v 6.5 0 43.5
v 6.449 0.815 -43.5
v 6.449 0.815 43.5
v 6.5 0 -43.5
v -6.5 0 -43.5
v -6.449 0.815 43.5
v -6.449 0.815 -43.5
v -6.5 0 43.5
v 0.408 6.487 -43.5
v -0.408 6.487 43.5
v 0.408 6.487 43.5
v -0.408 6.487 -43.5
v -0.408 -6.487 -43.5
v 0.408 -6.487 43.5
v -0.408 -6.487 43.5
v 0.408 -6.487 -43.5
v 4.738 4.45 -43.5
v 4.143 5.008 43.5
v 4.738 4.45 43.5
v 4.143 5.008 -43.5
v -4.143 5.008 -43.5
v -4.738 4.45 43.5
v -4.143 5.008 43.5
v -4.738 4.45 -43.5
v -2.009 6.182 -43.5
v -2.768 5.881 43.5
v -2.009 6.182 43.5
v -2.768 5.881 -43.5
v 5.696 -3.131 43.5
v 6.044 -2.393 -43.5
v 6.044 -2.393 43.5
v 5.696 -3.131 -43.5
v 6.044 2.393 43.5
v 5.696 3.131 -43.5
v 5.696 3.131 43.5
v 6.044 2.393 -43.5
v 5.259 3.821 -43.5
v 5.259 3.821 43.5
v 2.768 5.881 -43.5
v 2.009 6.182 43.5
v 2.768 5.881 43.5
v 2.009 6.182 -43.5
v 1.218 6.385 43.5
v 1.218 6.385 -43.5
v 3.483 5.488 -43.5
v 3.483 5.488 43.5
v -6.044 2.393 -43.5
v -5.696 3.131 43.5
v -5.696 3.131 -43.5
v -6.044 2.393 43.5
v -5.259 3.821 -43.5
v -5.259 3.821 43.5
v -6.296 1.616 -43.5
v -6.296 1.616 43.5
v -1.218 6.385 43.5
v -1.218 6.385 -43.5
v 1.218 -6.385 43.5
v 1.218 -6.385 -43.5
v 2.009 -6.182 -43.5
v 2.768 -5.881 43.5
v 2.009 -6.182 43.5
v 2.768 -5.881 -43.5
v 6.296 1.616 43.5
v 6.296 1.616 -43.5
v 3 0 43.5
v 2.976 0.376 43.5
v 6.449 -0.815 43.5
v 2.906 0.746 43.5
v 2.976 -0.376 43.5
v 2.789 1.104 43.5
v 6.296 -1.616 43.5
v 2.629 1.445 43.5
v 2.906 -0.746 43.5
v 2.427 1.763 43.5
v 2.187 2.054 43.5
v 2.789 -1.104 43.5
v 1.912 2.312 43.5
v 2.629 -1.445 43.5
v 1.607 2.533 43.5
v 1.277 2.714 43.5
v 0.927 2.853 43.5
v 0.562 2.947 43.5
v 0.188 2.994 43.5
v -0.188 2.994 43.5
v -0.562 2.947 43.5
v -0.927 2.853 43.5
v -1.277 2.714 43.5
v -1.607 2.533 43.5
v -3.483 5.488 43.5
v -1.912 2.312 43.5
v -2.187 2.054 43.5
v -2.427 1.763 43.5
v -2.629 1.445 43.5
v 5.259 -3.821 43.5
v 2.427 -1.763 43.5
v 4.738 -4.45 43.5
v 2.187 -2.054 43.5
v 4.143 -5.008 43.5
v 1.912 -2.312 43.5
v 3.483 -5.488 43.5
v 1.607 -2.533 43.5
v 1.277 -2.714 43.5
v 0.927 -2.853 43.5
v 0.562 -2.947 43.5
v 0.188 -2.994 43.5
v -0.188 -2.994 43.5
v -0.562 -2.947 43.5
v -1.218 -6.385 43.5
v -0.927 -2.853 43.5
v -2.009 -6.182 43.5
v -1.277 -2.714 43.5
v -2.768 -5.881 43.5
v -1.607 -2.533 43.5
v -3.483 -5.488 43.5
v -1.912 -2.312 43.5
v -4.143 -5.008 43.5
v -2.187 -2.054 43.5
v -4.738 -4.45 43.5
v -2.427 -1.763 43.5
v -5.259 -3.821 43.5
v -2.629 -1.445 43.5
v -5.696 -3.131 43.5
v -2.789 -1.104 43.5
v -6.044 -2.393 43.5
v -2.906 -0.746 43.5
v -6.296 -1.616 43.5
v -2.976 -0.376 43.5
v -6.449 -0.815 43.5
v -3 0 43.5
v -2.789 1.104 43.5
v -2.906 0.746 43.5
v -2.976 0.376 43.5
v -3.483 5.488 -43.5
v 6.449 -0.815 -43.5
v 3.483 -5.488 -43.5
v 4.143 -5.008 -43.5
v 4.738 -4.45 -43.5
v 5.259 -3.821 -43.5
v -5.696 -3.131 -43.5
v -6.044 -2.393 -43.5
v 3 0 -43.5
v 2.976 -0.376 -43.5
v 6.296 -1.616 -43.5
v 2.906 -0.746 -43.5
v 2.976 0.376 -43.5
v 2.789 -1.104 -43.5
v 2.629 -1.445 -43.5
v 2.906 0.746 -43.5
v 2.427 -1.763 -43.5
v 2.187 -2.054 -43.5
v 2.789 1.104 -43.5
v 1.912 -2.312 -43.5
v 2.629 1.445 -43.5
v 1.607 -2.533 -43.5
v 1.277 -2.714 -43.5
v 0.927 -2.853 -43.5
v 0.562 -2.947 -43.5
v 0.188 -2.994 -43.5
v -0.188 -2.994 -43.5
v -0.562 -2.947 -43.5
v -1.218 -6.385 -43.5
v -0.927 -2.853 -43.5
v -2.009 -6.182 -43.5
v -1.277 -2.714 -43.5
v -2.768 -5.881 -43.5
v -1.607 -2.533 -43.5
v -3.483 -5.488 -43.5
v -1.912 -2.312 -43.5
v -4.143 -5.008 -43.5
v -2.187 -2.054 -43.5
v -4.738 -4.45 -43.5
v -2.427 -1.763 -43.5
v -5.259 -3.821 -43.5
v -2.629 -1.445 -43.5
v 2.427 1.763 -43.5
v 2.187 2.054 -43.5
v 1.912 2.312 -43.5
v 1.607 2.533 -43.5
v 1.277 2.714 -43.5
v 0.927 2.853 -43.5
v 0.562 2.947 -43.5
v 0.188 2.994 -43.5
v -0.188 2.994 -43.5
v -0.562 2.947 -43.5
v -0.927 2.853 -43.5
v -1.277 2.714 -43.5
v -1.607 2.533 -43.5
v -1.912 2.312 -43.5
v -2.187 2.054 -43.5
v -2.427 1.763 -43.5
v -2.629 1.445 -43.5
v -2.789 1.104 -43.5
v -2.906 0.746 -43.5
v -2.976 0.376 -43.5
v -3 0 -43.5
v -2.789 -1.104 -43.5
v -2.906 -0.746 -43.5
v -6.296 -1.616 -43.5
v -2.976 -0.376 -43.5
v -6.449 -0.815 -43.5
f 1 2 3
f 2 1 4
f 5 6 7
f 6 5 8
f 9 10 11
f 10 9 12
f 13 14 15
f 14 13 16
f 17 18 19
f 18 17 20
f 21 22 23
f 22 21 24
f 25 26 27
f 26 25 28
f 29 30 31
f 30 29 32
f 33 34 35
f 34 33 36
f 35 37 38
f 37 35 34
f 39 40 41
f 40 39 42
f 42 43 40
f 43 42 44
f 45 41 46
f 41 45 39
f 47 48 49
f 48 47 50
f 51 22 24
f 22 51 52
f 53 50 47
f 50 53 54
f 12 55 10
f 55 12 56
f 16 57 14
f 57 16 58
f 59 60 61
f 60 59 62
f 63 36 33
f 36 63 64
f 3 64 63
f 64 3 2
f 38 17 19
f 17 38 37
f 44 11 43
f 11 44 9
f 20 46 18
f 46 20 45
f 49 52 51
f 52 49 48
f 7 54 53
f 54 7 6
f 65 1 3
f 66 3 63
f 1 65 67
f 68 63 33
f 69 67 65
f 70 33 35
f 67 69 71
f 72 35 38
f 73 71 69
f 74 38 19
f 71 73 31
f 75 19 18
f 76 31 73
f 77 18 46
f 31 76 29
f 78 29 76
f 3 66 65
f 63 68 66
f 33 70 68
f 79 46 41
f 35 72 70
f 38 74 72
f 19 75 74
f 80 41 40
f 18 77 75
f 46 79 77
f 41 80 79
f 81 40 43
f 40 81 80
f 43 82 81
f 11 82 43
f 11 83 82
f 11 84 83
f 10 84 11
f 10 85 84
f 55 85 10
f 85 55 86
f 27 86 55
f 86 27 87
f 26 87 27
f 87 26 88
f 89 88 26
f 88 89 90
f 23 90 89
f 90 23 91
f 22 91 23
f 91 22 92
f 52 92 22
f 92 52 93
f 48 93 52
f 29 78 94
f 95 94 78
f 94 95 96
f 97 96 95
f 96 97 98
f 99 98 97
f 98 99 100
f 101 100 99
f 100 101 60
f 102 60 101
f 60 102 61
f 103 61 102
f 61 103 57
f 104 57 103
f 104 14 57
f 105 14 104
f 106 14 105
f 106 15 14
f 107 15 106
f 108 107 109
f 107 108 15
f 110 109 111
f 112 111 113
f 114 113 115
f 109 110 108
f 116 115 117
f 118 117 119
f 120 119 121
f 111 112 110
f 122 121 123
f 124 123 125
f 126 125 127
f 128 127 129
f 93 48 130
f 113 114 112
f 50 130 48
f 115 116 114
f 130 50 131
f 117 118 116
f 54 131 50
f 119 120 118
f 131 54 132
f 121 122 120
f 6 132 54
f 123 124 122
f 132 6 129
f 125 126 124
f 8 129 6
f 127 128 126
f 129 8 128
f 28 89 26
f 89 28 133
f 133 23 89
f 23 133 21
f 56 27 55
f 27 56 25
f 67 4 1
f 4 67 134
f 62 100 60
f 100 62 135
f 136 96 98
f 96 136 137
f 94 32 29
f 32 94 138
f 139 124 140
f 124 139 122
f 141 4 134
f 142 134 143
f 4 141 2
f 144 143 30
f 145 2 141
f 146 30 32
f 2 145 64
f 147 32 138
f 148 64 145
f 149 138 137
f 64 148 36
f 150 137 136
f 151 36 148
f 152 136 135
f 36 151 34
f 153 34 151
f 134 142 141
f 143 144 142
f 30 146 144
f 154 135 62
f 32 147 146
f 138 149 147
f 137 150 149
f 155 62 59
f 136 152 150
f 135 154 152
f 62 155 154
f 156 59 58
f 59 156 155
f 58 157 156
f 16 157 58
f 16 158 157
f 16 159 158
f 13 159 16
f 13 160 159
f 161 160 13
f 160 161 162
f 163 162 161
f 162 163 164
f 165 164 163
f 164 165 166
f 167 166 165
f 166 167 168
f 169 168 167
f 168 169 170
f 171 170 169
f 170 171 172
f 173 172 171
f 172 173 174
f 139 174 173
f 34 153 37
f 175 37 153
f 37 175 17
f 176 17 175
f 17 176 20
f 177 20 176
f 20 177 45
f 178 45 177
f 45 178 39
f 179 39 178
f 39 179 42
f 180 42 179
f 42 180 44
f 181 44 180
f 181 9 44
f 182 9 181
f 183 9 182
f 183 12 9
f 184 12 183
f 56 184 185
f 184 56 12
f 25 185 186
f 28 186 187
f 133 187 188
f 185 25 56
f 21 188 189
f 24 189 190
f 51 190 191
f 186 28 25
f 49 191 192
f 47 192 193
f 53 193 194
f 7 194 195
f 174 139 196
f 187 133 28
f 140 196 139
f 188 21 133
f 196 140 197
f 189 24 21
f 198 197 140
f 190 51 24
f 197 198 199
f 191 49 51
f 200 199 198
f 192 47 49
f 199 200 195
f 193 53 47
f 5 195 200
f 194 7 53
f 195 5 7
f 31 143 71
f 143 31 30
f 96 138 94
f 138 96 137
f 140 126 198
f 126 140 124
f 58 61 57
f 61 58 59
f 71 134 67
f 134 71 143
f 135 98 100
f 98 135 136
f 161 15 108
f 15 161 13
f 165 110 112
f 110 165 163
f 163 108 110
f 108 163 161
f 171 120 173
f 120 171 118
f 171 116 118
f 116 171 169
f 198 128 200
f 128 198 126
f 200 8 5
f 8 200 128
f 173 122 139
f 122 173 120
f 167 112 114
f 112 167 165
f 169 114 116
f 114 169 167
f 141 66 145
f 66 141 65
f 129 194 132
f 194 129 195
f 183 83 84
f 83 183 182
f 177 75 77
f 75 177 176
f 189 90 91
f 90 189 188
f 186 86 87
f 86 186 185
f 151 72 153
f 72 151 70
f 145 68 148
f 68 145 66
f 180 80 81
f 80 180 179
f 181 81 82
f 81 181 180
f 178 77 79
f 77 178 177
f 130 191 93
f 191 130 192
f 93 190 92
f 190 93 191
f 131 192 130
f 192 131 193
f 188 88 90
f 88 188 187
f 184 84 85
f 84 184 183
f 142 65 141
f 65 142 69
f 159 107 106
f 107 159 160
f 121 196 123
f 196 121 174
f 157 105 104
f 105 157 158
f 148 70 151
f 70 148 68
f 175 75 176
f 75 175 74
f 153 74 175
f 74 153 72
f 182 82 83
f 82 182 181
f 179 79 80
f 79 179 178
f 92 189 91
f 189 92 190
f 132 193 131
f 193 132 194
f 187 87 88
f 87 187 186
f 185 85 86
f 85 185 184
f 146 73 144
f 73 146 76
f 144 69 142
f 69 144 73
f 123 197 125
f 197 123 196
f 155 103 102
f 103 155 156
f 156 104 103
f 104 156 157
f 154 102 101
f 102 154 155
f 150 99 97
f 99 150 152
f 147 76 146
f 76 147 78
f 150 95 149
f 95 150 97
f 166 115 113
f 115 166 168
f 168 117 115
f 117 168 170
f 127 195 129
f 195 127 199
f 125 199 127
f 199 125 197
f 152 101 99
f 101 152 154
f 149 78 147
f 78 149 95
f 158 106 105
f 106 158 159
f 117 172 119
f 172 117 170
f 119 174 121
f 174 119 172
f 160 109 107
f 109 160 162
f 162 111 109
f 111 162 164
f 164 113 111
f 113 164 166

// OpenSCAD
$fn = 50;


difference() {
	union() {
		translate(v = [0, 0, -43.5000000000]) {
			cylinder(h = 87, r = 6.5000000000);
		}
	}
	union() {
		translate(v = [0, 0, -100.0000000000]) {
			cylinder(h = 200, r = 3);
		}
	}
}
